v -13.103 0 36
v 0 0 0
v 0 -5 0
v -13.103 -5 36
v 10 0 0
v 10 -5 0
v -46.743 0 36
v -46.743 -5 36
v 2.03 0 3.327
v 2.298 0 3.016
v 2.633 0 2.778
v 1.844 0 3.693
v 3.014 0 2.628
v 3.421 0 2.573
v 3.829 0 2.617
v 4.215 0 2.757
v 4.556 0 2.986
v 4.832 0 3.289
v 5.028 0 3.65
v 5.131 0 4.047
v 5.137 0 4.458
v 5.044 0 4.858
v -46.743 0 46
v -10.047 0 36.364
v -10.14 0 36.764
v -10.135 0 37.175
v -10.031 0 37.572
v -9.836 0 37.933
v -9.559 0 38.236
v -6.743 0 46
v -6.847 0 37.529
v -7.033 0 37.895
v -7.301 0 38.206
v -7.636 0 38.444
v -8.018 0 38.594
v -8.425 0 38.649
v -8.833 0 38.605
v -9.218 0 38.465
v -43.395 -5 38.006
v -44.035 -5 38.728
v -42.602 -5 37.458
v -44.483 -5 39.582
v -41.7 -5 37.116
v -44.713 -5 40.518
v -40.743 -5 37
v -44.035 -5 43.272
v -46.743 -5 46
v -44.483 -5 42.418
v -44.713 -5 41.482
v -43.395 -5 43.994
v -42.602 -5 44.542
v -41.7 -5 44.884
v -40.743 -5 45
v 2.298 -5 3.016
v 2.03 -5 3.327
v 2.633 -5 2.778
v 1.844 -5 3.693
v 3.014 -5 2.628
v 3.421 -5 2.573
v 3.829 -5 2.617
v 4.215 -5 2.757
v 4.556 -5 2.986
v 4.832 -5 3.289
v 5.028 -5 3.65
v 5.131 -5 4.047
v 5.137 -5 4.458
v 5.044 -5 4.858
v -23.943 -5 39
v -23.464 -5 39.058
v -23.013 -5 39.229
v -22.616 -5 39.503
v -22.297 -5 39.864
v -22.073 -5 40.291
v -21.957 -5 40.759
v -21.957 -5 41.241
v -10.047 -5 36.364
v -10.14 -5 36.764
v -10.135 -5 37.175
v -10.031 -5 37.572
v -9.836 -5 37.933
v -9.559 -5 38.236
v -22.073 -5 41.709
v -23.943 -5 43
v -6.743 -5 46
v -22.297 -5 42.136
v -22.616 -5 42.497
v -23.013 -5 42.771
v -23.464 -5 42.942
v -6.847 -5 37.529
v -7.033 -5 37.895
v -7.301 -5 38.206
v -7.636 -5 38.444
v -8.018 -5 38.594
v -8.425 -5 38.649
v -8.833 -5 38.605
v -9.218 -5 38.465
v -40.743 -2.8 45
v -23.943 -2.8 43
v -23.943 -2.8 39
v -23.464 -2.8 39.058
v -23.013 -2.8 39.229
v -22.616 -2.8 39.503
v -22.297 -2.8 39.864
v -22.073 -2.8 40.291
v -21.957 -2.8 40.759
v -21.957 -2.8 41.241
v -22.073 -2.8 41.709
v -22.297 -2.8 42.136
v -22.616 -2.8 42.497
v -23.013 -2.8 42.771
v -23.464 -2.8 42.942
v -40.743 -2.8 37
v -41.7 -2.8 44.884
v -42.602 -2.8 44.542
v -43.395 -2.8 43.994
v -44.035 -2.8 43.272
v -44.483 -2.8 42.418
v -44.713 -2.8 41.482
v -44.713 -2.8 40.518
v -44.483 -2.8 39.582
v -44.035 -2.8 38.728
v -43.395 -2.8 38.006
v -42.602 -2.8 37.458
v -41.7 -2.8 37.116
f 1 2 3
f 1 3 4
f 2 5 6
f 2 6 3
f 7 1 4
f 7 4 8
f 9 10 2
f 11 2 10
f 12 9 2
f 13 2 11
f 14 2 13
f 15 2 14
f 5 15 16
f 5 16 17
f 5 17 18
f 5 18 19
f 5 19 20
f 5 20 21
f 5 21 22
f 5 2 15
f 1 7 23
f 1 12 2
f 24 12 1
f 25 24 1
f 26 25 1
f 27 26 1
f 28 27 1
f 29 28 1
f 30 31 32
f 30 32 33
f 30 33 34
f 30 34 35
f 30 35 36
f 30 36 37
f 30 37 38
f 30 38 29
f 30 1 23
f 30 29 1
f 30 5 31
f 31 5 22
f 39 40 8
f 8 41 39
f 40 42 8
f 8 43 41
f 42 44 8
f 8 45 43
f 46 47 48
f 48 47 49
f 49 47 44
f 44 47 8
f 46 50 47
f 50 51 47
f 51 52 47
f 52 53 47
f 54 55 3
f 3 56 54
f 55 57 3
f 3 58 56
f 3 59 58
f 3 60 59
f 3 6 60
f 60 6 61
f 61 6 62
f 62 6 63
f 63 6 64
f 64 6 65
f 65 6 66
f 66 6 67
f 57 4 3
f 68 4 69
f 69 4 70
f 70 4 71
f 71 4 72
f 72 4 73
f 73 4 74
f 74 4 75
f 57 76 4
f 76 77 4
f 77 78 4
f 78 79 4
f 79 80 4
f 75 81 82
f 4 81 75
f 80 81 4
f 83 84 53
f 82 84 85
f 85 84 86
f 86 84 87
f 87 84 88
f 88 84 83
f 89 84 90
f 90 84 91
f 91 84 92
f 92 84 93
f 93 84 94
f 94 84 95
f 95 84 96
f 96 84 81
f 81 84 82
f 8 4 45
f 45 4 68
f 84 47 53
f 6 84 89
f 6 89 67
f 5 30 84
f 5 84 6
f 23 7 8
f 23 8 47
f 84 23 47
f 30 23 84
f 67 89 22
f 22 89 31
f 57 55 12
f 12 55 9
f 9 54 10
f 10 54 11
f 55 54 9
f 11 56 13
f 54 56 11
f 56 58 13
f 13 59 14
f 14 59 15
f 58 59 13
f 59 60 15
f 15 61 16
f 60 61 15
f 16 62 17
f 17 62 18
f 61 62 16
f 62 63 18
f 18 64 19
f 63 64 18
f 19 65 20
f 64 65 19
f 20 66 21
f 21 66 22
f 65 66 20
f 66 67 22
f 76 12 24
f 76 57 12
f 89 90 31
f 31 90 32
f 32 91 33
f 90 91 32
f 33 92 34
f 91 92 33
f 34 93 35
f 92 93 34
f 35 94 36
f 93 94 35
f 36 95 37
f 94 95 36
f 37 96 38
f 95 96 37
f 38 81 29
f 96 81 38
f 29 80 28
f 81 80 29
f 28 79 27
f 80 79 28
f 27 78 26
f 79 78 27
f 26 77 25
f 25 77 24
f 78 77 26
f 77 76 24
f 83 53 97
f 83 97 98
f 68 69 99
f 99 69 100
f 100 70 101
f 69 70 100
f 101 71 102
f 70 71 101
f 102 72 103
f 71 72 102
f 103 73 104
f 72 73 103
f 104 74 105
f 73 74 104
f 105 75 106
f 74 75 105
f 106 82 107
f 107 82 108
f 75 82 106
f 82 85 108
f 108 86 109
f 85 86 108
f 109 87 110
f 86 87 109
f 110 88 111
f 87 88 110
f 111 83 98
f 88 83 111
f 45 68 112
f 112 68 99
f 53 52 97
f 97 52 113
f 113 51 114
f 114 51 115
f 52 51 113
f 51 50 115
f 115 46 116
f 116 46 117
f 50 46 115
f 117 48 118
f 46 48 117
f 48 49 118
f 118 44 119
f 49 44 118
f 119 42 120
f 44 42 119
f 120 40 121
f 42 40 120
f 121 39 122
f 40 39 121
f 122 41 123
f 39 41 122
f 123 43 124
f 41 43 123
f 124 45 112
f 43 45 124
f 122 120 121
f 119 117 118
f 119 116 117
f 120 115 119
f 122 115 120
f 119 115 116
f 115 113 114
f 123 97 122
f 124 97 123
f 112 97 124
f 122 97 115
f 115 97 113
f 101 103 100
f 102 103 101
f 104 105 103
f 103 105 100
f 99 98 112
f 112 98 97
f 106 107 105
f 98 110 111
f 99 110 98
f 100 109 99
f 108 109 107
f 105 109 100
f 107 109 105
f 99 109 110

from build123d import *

# Parameters (mm, degrees)
PAD_DEPTH       = 5
POCKET_DEPTH    = 5.001
POCKET001_DEPTH = 2.2


with BuildPart() as part:
    # Sketch → Pad (new body)
    with BuildSketch(Plane.XZ):
        Polygon((0, 0), (-13.102928, 36), (-46.742631, 36), (-46.742631, 46), (-6.742631, 46), (10, 0), align=None)
    extrude(amount=PAD_DEPTH)

    # Sketch001 (on Face8 of Pad) → Pocket (cut, through all)
    with BuildSketch(Plane.XZ.offset(5)):
        with BuildLine():
            ThreePointArc((-6.847488, 37.529023), (-9.029841, 38.546671), (-10.047488, 36.364318))
            Line((-10.047488, 36.364318), (1.843949, 3.692864))
            ThreePointArc((1.843949, 3.692864), (4.026301, 2.675216), (5.043949, 4.857568))
            Line((5.043949, 4.857568), (-6.847488, 37.529023))
        make_face()
    extrude(amount=-POCKET_DEPTH, mode=Mode.SUBTRACT)

    # Sketch002 (on Face5 of Pocket) → Pocket001 (cut)
    with BuildSketch(Plane.XZ.offset(5)):
        with BuildLine():
            Line((-40.742631, 45), (-23.942631, 43))
            ThreePointArc((-23.942631, 39), (-21.942631, 41), (-23.942631, 43))
            Line((-40.742631, 37), (-23.942631, 39))
            ThreePointArc((-40.742631, 45), (-44.742631, 41), (-40.742631, 37))
        make_face()
    extrude(amount=-POCKET001_DEPTH, mode=Mode.SUBTRACT)


solid = part.part
